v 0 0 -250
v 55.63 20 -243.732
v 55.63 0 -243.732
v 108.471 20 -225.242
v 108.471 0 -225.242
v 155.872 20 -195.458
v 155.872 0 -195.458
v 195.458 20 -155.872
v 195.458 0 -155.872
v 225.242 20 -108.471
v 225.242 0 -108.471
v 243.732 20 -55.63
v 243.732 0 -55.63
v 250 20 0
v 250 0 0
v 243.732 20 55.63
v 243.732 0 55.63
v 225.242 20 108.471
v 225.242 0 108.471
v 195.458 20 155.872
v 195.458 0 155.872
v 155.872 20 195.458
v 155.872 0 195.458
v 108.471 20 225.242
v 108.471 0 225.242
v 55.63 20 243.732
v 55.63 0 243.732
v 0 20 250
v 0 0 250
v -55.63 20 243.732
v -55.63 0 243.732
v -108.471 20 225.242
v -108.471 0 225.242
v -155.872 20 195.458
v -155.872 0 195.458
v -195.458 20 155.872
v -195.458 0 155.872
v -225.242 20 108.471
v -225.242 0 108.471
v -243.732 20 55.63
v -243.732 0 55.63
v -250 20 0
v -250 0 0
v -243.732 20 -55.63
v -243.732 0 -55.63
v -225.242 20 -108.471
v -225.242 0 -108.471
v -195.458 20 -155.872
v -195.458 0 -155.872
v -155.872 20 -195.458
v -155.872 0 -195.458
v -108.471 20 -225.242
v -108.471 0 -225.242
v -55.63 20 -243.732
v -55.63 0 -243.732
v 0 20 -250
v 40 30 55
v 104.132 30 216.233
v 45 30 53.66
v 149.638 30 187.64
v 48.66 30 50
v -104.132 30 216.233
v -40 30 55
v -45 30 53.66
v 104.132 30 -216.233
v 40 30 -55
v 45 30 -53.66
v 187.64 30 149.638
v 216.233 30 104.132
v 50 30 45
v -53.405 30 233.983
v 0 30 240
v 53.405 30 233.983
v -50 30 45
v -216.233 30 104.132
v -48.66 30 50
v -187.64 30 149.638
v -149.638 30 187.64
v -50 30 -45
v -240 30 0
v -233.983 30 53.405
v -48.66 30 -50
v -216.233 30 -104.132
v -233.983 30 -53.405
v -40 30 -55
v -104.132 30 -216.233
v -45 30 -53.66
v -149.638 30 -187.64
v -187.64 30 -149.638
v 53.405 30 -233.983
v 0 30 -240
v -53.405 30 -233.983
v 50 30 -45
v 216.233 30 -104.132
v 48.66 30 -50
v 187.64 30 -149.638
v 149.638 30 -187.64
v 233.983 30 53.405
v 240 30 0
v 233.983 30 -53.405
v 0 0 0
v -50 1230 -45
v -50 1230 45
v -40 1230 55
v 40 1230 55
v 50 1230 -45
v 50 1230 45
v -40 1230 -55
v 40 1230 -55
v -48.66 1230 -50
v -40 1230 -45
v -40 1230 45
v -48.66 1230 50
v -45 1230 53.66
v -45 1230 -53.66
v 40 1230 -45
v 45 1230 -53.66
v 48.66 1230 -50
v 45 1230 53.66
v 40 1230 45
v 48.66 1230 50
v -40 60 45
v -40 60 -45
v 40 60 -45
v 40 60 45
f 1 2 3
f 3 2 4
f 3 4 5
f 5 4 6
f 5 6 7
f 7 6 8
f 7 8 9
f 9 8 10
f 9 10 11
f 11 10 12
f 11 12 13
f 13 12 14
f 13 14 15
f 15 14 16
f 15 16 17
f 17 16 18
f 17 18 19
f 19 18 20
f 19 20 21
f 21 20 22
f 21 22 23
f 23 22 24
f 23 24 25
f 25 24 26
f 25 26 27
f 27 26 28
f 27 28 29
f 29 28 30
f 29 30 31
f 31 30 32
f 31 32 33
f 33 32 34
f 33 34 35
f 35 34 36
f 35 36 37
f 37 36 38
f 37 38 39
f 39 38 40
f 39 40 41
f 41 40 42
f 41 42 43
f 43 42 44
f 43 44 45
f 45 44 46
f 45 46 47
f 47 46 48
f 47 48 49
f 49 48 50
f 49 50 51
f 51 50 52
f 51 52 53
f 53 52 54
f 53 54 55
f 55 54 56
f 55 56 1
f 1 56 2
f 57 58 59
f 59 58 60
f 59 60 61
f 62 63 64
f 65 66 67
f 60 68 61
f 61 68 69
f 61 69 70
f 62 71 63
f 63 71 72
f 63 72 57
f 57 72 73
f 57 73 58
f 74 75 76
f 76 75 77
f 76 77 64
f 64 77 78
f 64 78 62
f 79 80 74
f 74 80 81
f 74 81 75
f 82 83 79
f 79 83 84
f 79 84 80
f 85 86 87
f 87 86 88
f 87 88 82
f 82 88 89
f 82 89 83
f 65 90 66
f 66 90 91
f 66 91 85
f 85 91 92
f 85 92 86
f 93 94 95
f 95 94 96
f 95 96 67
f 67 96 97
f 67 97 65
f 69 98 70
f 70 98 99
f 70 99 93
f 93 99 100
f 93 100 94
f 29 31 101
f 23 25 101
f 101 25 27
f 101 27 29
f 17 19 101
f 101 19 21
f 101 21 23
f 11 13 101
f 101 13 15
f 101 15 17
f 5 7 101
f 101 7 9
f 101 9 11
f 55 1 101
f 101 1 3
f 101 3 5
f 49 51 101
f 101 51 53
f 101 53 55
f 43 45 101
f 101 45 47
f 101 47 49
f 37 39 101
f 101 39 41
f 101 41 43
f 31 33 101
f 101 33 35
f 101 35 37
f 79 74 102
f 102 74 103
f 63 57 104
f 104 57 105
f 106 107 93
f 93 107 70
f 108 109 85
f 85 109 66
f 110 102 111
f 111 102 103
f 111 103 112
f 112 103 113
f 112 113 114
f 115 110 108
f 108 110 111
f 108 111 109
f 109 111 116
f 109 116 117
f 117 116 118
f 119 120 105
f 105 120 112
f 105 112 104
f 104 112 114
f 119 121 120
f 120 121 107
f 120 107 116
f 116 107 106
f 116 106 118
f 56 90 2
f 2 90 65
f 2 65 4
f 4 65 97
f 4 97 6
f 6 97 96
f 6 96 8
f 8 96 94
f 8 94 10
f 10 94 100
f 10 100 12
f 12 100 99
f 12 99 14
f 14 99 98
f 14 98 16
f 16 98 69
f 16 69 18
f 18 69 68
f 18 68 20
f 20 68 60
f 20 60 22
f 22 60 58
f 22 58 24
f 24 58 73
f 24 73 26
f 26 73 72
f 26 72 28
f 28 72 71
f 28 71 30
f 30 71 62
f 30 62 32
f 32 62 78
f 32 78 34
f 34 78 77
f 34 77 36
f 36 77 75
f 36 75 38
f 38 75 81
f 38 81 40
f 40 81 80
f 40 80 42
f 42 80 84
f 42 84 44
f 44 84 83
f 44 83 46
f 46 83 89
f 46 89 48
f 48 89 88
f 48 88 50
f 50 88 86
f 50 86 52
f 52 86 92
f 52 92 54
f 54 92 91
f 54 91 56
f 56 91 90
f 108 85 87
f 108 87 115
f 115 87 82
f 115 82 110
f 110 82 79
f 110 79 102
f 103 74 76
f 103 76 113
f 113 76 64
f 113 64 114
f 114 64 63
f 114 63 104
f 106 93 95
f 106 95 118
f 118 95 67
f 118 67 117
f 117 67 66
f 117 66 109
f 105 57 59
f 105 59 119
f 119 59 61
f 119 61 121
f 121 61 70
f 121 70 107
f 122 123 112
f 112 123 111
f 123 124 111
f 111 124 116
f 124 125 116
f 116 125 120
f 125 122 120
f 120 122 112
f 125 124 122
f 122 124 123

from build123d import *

# Parameters (mm, degrees)
SKETCH1_R           = 250
BOSS_EXTRUDE1_DEPTH = 30
SKETCH2_W           = 100
SKETCH2_H           = 110
BOSS_EXTRUDE2_DEPTH = 1200
CHAMFER1_SIZE       = 10
FILLET1_R           = 10
SKETCH3_W           = 80
SKETCH3_H           = 90
CUT_EXTRUDE1_DEPTH  = 1170


with BuildPart() as part:
    # Sketch1 → Boss-Extrude1 (new body)
    with BuildSketch(Plane(origin=(0, 0, 0), x_dir=(1, 0, 0), z_dir=(0, 1, 0))):
        with Locations(Location((0, 0, 0), (0, 0, 270))):
            Circle(SKETCH1_R)
    extrude(amount=BOSS_EXTRUDE1_DEPTH)

    # Sketch2 → Boss-Extrude2 (add)
    with BuildSketch(Plane(origin=(0, 30, 0), x_dir=(1, 0, 0), z_dir=(0, 1, 0))):
        Rectangle(SKETCH2_W, SKETCH2_H)
    extrude(amount=BOSS_EXTRUDE2_DEPTH)

    # Chamfer1
    chamfer1_edges = [part.edges().sort_by_distance(p)[0] for p in [
        (0, 30, -250),
    ]]
    chamfer(chamfer1_edges, length=CHAMFER1_SIZE)

    # Fillet1
    fillet1_edges = [part.edges().sort_by_distance(p)[0] for p in [
        (-50, 630, -55),
        (-50, 630, 55),
        (50, 630, 55),
        (50, 630, -55),
    ]]
    fillet(fillet1_edges, radius=FILLET1_R)

    # Sketch3 → Cut-Extrude1 (cut)
    with BuildSketch(Plane(origin=(0, 1230, 0), x_dir=(1, 0, 0), z_dir=(0, 1, 0))):
        Rectangle(SKETCH3_W, SKETCH3_H)
    extrude(amount=-CUT_EXTRUDE1_DEPTH, mode=Mode.SUBTRACT)


solid = part.part
